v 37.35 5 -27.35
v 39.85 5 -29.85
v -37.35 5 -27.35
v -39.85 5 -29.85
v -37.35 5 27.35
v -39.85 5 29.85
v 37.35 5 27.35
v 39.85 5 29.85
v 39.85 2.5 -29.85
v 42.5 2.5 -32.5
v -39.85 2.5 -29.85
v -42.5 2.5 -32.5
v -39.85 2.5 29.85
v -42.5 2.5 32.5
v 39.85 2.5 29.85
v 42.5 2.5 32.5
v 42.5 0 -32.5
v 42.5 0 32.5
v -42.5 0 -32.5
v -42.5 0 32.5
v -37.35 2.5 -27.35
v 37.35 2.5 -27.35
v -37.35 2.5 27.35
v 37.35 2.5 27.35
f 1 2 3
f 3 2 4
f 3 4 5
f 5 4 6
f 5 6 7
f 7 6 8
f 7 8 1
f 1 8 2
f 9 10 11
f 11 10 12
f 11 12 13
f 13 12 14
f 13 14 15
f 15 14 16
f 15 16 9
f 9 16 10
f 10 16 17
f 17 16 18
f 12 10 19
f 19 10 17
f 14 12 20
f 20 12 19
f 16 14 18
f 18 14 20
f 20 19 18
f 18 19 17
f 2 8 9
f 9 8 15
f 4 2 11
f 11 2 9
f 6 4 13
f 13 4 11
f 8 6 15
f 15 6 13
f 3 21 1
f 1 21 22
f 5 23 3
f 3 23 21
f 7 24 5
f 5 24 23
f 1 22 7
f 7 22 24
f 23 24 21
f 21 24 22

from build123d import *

# Parameters (mm, degrees)
SKETCH_1_W        = 85
SKETCH_1_H        = 65
EXTRUDE_1_DEPTH   = 2.5
SKETCH_3_W        = 79.7
SKETCH_3_H        = 59.7
EXTRUDE_2_DEPTH   = 2.5
SHELL_START       = 2.5
SHELL_1_OUTLINE_W = 74.7
SHELL_1_OUTLINE_H = 54.7
SHELL_1_DEPTH     = 2.5


# Read off the part's stored shape, not the designer's step: 抽壳1
with BuildPart() as part:
    # 草图1 → 凸台-拉伸1 (new body)
    with BuildSketch(Plane(origin=(0, 0, 0), x_dir=(1, 0, 0), z_dir=(0, 1, 0))):
        Rectangle(SKETCH_1_W, SKETCH_1_H)
    extrude(amount=EXTRUDE_1_DEPTH)

    # 草图3 → 凸台-拉伸2 (add)
    with BuildSketch(Plane(origin=(0, 2.5, 0), x_dir=(1, 0, 0), z_dir=(0, 1, 0))):
        Rectangle(SKETCH_3_W, SKETCH_3_H)
    extrude(amount=EXTRUDE_2_DEPTH)

    # 抽壳1 outline → 抽壳1 (cut)
    with BuildSketch(Plane(origin=(0, 0, 0), x_dir=(1, 0, 0), z_dir=(0, 1, 0)).offset(SHELL_START)):
        Rectangle(SHELL_1_OUTLINE_W, SHELL_1_OUTLINE_H)
    extrude(amount=SHELL_1_DEPTH, mode=Mode.SUBTRACT)


solid = part.part
